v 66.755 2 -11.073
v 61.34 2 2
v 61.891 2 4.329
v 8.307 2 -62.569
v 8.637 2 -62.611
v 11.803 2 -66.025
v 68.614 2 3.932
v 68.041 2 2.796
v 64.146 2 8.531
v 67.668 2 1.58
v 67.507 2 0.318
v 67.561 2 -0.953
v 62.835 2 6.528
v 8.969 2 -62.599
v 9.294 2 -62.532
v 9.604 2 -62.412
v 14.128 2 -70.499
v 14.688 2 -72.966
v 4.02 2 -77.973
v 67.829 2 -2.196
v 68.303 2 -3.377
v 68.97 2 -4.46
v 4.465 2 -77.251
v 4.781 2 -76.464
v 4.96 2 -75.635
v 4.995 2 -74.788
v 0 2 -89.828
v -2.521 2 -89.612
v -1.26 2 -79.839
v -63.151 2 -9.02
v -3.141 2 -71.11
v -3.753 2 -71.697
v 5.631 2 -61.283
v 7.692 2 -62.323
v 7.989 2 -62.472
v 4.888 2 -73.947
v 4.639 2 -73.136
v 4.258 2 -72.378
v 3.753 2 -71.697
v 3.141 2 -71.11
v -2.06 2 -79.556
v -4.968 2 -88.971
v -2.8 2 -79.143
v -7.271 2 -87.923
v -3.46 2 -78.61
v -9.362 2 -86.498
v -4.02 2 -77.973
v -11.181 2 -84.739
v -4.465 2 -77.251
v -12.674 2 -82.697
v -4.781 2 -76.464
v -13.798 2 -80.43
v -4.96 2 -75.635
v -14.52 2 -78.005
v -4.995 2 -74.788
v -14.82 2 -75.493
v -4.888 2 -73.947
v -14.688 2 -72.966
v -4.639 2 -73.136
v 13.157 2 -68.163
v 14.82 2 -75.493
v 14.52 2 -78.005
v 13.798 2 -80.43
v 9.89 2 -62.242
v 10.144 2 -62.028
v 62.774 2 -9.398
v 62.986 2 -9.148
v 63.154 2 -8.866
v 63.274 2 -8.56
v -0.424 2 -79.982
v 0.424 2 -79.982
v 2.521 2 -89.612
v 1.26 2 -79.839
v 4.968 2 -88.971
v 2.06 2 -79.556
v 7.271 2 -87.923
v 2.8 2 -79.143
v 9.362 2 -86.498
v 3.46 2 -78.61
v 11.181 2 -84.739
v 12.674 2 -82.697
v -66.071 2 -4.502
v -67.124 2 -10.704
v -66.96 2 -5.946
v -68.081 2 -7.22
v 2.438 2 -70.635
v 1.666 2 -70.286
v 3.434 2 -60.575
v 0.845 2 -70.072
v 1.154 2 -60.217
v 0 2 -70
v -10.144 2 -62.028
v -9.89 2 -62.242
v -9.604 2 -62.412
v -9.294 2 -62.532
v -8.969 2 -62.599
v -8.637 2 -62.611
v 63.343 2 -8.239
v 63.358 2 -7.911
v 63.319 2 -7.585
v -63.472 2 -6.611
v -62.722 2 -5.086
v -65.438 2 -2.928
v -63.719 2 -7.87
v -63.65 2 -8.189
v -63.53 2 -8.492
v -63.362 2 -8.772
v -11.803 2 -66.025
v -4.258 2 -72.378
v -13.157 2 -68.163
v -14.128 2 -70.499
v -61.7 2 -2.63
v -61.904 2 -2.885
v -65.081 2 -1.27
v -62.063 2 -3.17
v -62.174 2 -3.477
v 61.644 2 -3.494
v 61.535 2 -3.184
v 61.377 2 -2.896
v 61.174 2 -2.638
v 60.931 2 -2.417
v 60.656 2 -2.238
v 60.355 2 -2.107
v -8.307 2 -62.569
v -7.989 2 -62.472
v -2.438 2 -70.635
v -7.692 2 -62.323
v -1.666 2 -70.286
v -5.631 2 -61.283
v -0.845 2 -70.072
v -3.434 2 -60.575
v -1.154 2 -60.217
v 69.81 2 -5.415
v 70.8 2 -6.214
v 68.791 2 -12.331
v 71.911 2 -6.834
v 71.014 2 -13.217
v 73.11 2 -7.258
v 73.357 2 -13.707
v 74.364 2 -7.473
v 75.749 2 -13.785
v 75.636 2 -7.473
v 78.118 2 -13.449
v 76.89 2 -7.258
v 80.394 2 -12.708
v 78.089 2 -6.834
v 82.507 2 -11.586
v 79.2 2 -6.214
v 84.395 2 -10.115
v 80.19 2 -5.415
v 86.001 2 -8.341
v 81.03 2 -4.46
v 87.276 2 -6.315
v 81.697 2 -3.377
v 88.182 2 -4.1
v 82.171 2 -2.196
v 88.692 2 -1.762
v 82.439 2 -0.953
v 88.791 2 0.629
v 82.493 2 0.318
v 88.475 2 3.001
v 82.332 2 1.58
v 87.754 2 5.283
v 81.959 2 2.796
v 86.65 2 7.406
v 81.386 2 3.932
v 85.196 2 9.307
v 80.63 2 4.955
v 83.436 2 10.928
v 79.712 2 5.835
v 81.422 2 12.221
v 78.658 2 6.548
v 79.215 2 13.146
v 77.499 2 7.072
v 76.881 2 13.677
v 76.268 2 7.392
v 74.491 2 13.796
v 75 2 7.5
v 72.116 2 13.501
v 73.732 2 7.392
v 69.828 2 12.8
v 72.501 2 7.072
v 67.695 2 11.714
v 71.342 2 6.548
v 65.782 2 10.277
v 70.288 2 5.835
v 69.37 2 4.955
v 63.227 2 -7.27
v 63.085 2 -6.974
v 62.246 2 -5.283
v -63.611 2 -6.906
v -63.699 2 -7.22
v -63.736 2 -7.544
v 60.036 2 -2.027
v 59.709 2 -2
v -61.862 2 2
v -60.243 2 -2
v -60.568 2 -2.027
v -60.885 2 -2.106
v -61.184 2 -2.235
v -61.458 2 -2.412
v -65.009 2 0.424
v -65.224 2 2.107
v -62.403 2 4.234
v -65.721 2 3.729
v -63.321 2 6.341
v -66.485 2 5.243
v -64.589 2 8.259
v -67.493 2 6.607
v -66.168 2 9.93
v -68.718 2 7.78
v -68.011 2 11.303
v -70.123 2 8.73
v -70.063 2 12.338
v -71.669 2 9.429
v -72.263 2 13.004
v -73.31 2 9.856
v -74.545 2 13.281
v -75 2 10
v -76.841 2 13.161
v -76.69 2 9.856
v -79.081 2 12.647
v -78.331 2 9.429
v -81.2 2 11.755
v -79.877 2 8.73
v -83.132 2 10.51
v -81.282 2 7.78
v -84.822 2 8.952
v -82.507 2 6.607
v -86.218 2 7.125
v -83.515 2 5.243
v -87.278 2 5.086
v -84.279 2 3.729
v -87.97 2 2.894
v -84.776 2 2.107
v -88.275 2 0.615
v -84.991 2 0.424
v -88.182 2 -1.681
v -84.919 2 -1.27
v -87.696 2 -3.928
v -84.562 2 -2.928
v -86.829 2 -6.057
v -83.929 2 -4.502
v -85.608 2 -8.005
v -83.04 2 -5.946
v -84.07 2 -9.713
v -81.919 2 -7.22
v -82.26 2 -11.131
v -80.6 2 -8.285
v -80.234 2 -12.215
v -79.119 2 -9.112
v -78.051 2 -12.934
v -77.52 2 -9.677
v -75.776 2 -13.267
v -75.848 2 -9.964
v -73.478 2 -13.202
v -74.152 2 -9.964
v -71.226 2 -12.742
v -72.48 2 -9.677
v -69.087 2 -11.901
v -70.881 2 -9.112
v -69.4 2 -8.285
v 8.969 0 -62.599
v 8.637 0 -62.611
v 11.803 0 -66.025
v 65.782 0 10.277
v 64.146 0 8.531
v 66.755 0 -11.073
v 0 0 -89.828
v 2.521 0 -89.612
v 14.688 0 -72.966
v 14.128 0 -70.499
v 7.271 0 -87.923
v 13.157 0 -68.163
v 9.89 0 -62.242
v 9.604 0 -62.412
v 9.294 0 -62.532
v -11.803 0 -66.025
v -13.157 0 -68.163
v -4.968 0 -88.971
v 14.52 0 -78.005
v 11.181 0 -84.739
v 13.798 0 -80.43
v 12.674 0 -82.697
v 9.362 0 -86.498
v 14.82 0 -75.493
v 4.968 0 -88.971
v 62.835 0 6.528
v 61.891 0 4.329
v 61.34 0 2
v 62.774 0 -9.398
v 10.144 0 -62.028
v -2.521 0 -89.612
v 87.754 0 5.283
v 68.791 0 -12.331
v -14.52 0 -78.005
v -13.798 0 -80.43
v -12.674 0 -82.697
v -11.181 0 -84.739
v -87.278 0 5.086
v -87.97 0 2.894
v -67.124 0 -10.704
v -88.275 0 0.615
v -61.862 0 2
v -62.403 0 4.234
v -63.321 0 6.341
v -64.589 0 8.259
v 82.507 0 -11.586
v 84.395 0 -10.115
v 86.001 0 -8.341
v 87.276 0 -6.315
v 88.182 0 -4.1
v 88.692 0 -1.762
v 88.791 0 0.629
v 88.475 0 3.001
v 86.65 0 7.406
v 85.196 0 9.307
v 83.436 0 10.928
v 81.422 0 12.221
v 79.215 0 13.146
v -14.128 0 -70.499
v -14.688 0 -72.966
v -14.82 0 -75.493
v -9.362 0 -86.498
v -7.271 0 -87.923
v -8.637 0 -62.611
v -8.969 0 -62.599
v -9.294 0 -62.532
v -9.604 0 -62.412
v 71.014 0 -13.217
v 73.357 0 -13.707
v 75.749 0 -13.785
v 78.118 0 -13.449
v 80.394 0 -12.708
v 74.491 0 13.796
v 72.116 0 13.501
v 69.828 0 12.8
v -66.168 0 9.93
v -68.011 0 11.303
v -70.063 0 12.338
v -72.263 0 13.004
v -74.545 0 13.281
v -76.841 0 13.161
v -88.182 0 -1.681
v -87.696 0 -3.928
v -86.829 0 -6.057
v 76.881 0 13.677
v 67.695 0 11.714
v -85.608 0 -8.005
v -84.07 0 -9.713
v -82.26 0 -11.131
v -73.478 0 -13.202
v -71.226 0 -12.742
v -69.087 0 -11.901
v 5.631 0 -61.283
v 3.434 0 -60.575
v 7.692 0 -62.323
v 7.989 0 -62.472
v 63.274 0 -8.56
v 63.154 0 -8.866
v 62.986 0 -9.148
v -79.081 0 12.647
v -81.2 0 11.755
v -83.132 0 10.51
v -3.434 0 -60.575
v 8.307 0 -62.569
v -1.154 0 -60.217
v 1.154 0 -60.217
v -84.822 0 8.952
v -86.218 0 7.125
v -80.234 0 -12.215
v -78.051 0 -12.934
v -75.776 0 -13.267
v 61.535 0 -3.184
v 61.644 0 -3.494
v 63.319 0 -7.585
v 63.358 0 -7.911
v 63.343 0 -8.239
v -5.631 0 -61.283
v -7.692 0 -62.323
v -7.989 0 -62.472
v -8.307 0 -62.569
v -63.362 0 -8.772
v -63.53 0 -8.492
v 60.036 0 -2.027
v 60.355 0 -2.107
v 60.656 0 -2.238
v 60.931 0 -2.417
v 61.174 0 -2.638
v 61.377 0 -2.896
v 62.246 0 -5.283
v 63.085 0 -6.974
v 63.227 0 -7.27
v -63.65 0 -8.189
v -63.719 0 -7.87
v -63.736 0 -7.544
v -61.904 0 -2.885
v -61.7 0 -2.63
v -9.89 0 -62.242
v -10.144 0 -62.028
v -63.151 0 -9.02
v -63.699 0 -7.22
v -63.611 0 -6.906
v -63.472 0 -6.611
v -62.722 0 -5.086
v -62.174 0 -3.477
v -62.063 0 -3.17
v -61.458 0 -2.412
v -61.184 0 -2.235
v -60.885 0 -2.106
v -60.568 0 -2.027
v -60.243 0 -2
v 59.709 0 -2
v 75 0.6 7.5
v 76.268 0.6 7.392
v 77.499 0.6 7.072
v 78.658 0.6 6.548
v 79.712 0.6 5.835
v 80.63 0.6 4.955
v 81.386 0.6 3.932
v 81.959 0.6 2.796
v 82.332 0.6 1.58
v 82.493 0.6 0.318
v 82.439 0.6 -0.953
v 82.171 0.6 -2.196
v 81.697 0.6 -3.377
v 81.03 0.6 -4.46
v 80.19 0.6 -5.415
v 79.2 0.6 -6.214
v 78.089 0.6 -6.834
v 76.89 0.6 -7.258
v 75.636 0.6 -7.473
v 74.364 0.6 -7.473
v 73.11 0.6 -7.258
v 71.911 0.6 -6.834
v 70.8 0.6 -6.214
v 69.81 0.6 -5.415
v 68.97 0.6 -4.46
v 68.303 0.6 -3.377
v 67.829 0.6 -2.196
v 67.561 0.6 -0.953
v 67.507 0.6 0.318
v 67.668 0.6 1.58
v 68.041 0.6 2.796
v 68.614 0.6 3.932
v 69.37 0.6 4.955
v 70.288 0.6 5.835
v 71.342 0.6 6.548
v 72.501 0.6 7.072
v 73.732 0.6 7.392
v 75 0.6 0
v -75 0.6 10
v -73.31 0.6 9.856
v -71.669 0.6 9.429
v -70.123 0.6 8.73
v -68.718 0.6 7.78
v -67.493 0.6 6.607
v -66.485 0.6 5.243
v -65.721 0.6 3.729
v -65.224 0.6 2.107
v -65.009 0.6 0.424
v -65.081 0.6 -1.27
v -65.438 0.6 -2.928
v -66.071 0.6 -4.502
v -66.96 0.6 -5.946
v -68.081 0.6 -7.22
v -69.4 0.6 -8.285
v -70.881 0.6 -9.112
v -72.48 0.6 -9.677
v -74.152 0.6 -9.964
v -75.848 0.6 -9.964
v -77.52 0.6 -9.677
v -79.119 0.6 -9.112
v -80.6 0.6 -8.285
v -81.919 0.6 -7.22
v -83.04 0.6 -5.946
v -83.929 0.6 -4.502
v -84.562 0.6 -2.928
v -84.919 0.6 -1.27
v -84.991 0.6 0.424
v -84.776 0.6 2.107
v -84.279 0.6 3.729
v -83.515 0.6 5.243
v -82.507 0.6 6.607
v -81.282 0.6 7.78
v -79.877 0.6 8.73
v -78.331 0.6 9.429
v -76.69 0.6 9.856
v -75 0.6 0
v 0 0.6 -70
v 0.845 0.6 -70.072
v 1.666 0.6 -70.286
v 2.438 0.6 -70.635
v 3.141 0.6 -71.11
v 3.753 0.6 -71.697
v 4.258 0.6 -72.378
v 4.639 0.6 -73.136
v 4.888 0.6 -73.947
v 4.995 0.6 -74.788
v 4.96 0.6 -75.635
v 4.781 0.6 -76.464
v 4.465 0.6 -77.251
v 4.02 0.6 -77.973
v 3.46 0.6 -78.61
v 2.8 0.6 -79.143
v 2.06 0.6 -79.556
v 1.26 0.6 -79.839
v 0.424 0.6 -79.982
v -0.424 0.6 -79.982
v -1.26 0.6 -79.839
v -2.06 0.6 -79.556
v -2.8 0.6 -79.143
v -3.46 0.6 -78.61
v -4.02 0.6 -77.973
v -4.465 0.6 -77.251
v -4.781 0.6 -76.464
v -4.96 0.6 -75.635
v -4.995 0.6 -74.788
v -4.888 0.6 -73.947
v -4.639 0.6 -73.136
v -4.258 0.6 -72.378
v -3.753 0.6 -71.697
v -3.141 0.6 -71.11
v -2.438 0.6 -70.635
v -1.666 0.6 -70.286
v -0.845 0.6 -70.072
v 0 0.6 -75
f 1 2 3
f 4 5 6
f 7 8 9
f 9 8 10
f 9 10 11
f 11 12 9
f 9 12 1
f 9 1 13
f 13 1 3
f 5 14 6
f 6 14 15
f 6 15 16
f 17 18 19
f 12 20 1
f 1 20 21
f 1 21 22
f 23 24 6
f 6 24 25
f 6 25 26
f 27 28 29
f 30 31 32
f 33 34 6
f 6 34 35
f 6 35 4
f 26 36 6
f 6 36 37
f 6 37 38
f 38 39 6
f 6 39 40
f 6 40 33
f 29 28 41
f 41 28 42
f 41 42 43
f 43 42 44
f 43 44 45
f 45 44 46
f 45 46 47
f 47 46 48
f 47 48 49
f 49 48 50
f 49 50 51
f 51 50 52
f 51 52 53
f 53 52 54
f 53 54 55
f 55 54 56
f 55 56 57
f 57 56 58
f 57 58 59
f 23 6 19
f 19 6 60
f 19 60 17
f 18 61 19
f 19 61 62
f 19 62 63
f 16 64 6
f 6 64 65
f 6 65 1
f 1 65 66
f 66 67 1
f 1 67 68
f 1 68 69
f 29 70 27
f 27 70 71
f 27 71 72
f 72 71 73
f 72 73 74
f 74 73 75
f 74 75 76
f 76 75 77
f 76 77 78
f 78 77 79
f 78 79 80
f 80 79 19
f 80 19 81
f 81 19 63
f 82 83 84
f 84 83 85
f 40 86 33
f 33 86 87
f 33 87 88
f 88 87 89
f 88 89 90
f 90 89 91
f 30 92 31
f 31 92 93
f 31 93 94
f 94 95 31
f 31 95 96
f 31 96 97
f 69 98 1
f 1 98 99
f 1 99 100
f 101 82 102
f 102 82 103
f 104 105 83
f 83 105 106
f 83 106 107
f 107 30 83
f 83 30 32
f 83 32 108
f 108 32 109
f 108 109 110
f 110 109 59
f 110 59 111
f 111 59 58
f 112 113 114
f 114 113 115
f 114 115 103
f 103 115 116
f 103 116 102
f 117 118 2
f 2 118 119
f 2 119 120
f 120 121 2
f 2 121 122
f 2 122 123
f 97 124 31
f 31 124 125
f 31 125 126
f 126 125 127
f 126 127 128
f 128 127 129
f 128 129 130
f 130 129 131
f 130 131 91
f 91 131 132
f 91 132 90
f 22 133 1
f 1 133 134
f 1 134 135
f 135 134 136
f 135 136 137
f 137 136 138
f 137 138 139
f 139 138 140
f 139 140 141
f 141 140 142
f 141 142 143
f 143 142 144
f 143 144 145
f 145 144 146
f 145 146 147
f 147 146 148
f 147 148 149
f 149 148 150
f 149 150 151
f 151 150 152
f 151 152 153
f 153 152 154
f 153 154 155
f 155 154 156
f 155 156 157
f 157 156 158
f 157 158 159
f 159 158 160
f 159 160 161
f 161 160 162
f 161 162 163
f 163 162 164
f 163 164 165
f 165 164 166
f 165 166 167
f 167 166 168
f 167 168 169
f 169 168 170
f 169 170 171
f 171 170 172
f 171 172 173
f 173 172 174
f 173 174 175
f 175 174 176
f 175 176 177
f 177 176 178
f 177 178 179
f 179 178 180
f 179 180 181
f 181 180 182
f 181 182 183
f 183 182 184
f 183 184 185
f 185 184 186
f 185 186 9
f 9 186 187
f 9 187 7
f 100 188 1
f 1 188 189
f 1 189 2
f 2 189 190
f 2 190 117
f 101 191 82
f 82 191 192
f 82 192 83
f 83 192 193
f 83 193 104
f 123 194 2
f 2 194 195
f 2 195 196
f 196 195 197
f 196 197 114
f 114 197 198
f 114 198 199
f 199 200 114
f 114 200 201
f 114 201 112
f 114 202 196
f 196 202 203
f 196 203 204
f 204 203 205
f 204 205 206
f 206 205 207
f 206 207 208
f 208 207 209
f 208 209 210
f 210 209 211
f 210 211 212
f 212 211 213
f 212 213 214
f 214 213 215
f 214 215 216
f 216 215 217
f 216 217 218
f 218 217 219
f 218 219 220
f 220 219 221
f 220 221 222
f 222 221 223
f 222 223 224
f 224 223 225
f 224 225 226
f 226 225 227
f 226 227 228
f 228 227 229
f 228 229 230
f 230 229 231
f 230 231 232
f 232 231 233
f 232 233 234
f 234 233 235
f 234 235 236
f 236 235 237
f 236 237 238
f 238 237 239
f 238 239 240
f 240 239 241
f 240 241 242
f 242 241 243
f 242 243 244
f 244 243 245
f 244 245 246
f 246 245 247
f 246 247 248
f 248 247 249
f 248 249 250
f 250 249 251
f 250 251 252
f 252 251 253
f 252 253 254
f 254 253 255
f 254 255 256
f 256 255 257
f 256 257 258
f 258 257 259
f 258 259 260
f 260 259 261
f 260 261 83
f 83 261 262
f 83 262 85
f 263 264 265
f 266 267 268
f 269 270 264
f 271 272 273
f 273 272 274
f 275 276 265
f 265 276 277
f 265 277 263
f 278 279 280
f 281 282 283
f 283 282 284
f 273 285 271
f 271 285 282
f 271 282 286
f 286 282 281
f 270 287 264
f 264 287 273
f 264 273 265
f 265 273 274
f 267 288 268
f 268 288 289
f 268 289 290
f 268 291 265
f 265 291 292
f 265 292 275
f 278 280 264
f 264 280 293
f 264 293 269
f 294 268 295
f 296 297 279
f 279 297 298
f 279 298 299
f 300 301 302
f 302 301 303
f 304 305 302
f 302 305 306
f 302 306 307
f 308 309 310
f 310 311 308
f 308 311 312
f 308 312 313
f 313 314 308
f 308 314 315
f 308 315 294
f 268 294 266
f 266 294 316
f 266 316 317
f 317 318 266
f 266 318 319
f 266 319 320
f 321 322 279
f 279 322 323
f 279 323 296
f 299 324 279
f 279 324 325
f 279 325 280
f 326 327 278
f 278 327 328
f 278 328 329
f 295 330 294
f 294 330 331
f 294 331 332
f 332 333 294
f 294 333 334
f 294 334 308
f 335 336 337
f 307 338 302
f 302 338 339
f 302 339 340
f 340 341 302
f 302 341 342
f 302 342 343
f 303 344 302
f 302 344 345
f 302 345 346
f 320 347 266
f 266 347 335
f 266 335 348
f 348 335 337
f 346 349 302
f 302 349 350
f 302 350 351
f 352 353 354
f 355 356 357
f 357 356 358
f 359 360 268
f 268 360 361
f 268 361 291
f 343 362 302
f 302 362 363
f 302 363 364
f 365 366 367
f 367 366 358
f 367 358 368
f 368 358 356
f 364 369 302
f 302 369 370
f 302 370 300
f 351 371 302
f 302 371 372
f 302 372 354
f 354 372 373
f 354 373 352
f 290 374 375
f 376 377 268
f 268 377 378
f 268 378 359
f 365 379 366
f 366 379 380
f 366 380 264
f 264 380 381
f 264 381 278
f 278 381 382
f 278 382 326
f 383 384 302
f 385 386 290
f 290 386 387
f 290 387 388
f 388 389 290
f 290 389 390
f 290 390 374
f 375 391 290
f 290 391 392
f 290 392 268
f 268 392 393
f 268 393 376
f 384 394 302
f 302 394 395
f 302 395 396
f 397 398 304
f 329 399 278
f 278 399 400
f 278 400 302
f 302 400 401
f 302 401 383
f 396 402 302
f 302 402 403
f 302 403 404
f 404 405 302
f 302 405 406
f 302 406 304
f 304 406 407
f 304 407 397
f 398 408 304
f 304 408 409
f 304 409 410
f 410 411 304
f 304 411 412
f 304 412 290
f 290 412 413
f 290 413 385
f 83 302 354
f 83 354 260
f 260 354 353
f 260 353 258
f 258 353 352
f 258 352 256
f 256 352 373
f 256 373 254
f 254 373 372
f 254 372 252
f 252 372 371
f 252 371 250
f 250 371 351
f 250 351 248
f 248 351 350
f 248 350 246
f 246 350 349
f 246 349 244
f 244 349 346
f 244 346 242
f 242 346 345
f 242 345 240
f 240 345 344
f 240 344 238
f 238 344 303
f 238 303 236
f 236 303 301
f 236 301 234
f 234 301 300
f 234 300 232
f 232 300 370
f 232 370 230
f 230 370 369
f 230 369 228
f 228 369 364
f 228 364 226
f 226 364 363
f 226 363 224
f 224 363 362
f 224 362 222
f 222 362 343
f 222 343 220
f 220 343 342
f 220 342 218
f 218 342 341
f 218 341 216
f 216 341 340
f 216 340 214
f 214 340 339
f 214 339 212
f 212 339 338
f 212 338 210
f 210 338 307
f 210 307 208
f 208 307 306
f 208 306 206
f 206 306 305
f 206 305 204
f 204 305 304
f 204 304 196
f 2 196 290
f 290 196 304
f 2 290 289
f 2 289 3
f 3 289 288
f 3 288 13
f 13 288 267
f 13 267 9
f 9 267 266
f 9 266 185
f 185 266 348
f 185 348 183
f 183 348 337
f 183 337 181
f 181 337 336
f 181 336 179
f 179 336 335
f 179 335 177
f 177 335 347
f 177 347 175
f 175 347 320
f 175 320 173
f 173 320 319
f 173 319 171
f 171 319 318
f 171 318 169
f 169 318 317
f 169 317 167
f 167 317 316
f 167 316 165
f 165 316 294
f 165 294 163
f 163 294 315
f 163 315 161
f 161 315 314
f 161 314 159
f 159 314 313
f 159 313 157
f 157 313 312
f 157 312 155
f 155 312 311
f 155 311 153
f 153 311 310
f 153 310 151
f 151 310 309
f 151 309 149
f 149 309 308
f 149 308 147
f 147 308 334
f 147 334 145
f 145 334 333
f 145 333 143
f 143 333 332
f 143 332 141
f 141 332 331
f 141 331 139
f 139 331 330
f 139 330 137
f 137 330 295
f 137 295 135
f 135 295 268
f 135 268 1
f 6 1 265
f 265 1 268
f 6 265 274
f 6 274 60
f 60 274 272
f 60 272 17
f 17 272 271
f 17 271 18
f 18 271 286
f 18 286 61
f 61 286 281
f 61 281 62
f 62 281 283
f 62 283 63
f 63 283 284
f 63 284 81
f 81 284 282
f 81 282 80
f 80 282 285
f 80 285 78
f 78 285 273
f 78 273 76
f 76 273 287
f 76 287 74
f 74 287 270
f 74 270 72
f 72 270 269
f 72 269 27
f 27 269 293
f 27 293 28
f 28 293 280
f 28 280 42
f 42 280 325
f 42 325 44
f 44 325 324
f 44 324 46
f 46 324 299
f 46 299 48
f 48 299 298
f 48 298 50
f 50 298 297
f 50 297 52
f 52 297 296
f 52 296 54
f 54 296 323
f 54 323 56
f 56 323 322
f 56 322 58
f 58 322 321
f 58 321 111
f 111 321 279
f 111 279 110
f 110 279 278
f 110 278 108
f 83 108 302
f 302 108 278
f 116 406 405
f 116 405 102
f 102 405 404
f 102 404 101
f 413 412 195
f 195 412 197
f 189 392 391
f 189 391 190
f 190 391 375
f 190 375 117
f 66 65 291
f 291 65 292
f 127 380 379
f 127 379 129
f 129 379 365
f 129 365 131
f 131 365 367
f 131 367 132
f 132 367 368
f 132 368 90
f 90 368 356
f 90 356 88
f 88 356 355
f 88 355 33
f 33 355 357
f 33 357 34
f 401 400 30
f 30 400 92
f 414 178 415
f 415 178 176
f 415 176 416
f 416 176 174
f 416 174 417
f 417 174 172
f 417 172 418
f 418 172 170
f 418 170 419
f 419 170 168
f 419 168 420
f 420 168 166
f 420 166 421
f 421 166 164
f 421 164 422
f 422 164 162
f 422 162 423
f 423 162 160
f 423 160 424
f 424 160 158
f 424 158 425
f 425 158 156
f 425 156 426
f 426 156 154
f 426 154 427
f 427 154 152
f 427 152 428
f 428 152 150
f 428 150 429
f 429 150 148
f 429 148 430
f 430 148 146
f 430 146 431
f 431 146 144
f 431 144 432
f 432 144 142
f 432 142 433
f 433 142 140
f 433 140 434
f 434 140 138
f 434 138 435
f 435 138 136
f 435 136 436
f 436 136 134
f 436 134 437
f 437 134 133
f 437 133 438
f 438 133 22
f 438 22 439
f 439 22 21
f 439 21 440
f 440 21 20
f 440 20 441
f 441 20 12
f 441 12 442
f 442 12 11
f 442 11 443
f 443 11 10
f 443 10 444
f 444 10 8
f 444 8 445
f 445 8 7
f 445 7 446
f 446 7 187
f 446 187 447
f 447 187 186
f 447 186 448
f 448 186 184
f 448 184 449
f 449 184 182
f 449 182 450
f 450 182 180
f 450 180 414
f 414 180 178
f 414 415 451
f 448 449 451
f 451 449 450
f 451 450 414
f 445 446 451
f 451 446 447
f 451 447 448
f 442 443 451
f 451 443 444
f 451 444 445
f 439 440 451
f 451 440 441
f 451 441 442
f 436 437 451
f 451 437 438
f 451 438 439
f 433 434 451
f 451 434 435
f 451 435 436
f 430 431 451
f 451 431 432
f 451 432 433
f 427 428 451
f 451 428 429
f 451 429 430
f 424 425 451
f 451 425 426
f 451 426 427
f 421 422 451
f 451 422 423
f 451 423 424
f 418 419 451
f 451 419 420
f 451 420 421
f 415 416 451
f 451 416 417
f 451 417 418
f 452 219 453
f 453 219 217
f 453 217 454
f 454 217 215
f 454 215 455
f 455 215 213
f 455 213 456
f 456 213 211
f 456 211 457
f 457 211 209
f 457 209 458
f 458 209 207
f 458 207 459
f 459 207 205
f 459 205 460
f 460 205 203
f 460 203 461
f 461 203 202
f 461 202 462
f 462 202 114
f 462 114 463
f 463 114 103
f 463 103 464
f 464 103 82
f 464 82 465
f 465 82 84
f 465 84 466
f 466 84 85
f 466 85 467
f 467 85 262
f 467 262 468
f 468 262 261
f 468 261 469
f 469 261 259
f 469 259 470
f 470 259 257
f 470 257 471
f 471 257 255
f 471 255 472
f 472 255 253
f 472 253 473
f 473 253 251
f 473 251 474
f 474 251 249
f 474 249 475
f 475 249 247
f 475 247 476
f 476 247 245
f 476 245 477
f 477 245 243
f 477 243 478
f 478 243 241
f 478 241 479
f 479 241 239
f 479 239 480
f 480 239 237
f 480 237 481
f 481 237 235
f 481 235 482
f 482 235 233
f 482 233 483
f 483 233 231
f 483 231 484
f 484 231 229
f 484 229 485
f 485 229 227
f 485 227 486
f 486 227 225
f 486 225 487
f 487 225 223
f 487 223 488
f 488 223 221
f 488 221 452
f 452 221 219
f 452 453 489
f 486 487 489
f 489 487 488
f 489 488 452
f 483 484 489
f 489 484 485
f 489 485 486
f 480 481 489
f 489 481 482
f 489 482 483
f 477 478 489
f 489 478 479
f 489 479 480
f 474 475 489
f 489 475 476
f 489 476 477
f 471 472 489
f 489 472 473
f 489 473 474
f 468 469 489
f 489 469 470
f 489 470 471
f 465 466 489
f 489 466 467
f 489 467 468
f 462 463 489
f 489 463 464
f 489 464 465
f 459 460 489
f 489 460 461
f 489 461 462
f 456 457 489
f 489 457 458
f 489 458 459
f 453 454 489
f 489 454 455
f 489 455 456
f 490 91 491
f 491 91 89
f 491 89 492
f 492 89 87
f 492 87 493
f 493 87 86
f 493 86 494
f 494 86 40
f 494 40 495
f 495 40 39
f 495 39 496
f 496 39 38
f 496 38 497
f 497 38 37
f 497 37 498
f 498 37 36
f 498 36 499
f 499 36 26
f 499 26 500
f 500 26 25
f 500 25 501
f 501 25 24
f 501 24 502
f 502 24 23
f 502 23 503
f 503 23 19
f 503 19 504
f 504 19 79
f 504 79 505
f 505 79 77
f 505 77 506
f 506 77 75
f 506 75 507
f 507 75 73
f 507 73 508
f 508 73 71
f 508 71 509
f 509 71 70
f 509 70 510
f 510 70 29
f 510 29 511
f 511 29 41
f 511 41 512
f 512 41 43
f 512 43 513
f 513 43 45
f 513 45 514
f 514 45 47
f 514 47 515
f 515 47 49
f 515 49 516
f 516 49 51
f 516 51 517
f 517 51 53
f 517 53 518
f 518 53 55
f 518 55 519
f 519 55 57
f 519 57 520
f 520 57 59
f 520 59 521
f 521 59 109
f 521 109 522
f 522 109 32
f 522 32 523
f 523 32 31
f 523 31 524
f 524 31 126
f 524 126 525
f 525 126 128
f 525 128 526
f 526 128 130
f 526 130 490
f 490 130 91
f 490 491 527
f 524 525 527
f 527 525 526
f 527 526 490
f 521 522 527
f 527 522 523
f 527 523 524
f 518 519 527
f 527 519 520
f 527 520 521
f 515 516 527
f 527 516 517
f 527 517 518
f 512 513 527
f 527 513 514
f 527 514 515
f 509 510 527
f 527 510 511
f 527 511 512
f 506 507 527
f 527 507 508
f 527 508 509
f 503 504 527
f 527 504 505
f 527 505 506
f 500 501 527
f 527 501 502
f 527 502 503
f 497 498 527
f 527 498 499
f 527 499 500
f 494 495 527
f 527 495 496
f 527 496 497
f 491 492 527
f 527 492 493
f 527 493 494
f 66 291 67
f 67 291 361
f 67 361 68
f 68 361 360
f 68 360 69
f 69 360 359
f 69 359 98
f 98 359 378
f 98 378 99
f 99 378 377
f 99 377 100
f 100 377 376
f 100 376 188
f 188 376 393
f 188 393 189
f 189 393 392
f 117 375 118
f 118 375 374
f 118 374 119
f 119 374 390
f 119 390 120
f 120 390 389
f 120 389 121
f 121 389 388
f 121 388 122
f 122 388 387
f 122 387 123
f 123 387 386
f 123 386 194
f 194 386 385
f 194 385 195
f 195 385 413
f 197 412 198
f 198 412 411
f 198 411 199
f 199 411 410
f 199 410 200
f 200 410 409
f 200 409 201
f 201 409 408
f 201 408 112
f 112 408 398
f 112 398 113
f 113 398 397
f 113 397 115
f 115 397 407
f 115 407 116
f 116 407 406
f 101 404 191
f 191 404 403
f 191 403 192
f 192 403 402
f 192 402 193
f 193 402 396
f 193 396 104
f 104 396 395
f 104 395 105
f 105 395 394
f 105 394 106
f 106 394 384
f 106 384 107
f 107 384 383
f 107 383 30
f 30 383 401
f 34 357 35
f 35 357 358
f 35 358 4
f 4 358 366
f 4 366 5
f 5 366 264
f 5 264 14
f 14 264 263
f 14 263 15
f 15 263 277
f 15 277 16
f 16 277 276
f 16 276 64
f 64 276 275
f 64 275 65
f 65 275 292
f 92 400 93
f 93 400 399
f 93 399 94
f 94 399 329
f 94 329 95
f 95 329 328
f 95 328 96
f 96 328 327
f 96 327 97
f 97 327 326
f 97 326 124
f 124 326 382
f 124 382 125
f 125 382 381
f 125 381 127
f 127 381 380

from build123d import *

# Parameters (mm, degrees)
AUFSATZ_LINEAR_AUSTRAGEN1_DEPTH = 2
SKIZZE2_R                       = 5
SKIZZE2_R_2                     = 10
SKIZZE2_R_3                     = 7.5
SCHNITT_LINEAR_AUSTRAGEN1_DEPTH = 1.4
VERRUNDUNG1_R                   = 2


with BuildPart() as part:
    # Skizze1 → Aufsatz-Linear austragen1 (new body)
    with BuildSketch(Plane(origin=(0, 0, 0), x_dir=(1, 0, 0), z_dir=(0, 1, 0))):
        with BuildLine():
            Line((-11.803204492, 66.025222633), (-67.124306483, 10.704120642))
            ThreePointArc((-67.124306483, 10.704120642), (-87.277686291, -5.085584176), (-61.862087415, -2))
            Line((-61.862087415, -2), (61.34027937, -2))
            ThreePointArc((61.34027937, -2), (87.754489642, -5.283082591), (66.755332476, 11.073094649))
            Line((66.755332476, 11.073094649), (11.803204492, 66.025222633))
            ThreePointArc((11.803204492, 66.025222633), (0, 89.827753204), (-11.803204492, 66.025222633))
        make_face()
        with BuildLine():
            Line((-8.974777367, 63.196795508), (-64.295879358, 7.875693517))
            ThreePointArc((-64.295879358, 7.875693517), (-62.722313709, 5.085584176), (-61.862087415, 2))
            Line((-61.862087415, 2), (61.34027937, 2))
            ThreePointArc((61.34027937, 2), (62.245510358, 5.283082591), (63.926905351, 8.244667524))
            Line((63.926905351, 8.244667524), (8.974777367, 63.196795508))
            ThreePointArc((8.974777367, 63.196795508), (0, 60.172246796), (-8.974777367, 63.196795508))
        make_face(mode=Mode.SUBTRACT)
    extrude(amount=AUFSATZ_LINEAR_AUSTRAGEN1_DEPTH)

    # Skizze2 → Schnitt-Linear austragen1 (cut)
    with BuildSketch(Plane(origin=(0, 2, 0), x_dir=(1, 0, 0), z_dir=(0, 1, 0))):
        with Locations(Location((0, 75, 0), (0, 0, 270))):
            Circle(SKIZZE2_R)
        with Locations(Location((-75, 0, 0), (0, 0, 270))):
            Circle(SKIZZE2_R_2)
        with Locations(Location((75, 0, 0), (0, 0, 270))):
            Circle(SKIZZE2_R_3)
    extrude(amount=-SCHNITT_LINEAR_AUSTRAGEN1_DEPTH, mode=Mode.SUBTRACT)

    # Verrundung1
    verrundung1_edges = [part.edges().sort_by_distance(p)[0] for p in [
        (-64.295879358, 1, -7.875693517),
        (-61.862087415, 1, -2),
        (61.34027937, 1, -2),
        (63.926905351, 1, -8.244667524),
        (8.974777367, 1, -63.196795508),
        (-8.974777367, 1, -63.196795508),
    ]]
    fillet(verrundung1_edges, radius=VERRUNDUNG1_R)


solid = part.part
